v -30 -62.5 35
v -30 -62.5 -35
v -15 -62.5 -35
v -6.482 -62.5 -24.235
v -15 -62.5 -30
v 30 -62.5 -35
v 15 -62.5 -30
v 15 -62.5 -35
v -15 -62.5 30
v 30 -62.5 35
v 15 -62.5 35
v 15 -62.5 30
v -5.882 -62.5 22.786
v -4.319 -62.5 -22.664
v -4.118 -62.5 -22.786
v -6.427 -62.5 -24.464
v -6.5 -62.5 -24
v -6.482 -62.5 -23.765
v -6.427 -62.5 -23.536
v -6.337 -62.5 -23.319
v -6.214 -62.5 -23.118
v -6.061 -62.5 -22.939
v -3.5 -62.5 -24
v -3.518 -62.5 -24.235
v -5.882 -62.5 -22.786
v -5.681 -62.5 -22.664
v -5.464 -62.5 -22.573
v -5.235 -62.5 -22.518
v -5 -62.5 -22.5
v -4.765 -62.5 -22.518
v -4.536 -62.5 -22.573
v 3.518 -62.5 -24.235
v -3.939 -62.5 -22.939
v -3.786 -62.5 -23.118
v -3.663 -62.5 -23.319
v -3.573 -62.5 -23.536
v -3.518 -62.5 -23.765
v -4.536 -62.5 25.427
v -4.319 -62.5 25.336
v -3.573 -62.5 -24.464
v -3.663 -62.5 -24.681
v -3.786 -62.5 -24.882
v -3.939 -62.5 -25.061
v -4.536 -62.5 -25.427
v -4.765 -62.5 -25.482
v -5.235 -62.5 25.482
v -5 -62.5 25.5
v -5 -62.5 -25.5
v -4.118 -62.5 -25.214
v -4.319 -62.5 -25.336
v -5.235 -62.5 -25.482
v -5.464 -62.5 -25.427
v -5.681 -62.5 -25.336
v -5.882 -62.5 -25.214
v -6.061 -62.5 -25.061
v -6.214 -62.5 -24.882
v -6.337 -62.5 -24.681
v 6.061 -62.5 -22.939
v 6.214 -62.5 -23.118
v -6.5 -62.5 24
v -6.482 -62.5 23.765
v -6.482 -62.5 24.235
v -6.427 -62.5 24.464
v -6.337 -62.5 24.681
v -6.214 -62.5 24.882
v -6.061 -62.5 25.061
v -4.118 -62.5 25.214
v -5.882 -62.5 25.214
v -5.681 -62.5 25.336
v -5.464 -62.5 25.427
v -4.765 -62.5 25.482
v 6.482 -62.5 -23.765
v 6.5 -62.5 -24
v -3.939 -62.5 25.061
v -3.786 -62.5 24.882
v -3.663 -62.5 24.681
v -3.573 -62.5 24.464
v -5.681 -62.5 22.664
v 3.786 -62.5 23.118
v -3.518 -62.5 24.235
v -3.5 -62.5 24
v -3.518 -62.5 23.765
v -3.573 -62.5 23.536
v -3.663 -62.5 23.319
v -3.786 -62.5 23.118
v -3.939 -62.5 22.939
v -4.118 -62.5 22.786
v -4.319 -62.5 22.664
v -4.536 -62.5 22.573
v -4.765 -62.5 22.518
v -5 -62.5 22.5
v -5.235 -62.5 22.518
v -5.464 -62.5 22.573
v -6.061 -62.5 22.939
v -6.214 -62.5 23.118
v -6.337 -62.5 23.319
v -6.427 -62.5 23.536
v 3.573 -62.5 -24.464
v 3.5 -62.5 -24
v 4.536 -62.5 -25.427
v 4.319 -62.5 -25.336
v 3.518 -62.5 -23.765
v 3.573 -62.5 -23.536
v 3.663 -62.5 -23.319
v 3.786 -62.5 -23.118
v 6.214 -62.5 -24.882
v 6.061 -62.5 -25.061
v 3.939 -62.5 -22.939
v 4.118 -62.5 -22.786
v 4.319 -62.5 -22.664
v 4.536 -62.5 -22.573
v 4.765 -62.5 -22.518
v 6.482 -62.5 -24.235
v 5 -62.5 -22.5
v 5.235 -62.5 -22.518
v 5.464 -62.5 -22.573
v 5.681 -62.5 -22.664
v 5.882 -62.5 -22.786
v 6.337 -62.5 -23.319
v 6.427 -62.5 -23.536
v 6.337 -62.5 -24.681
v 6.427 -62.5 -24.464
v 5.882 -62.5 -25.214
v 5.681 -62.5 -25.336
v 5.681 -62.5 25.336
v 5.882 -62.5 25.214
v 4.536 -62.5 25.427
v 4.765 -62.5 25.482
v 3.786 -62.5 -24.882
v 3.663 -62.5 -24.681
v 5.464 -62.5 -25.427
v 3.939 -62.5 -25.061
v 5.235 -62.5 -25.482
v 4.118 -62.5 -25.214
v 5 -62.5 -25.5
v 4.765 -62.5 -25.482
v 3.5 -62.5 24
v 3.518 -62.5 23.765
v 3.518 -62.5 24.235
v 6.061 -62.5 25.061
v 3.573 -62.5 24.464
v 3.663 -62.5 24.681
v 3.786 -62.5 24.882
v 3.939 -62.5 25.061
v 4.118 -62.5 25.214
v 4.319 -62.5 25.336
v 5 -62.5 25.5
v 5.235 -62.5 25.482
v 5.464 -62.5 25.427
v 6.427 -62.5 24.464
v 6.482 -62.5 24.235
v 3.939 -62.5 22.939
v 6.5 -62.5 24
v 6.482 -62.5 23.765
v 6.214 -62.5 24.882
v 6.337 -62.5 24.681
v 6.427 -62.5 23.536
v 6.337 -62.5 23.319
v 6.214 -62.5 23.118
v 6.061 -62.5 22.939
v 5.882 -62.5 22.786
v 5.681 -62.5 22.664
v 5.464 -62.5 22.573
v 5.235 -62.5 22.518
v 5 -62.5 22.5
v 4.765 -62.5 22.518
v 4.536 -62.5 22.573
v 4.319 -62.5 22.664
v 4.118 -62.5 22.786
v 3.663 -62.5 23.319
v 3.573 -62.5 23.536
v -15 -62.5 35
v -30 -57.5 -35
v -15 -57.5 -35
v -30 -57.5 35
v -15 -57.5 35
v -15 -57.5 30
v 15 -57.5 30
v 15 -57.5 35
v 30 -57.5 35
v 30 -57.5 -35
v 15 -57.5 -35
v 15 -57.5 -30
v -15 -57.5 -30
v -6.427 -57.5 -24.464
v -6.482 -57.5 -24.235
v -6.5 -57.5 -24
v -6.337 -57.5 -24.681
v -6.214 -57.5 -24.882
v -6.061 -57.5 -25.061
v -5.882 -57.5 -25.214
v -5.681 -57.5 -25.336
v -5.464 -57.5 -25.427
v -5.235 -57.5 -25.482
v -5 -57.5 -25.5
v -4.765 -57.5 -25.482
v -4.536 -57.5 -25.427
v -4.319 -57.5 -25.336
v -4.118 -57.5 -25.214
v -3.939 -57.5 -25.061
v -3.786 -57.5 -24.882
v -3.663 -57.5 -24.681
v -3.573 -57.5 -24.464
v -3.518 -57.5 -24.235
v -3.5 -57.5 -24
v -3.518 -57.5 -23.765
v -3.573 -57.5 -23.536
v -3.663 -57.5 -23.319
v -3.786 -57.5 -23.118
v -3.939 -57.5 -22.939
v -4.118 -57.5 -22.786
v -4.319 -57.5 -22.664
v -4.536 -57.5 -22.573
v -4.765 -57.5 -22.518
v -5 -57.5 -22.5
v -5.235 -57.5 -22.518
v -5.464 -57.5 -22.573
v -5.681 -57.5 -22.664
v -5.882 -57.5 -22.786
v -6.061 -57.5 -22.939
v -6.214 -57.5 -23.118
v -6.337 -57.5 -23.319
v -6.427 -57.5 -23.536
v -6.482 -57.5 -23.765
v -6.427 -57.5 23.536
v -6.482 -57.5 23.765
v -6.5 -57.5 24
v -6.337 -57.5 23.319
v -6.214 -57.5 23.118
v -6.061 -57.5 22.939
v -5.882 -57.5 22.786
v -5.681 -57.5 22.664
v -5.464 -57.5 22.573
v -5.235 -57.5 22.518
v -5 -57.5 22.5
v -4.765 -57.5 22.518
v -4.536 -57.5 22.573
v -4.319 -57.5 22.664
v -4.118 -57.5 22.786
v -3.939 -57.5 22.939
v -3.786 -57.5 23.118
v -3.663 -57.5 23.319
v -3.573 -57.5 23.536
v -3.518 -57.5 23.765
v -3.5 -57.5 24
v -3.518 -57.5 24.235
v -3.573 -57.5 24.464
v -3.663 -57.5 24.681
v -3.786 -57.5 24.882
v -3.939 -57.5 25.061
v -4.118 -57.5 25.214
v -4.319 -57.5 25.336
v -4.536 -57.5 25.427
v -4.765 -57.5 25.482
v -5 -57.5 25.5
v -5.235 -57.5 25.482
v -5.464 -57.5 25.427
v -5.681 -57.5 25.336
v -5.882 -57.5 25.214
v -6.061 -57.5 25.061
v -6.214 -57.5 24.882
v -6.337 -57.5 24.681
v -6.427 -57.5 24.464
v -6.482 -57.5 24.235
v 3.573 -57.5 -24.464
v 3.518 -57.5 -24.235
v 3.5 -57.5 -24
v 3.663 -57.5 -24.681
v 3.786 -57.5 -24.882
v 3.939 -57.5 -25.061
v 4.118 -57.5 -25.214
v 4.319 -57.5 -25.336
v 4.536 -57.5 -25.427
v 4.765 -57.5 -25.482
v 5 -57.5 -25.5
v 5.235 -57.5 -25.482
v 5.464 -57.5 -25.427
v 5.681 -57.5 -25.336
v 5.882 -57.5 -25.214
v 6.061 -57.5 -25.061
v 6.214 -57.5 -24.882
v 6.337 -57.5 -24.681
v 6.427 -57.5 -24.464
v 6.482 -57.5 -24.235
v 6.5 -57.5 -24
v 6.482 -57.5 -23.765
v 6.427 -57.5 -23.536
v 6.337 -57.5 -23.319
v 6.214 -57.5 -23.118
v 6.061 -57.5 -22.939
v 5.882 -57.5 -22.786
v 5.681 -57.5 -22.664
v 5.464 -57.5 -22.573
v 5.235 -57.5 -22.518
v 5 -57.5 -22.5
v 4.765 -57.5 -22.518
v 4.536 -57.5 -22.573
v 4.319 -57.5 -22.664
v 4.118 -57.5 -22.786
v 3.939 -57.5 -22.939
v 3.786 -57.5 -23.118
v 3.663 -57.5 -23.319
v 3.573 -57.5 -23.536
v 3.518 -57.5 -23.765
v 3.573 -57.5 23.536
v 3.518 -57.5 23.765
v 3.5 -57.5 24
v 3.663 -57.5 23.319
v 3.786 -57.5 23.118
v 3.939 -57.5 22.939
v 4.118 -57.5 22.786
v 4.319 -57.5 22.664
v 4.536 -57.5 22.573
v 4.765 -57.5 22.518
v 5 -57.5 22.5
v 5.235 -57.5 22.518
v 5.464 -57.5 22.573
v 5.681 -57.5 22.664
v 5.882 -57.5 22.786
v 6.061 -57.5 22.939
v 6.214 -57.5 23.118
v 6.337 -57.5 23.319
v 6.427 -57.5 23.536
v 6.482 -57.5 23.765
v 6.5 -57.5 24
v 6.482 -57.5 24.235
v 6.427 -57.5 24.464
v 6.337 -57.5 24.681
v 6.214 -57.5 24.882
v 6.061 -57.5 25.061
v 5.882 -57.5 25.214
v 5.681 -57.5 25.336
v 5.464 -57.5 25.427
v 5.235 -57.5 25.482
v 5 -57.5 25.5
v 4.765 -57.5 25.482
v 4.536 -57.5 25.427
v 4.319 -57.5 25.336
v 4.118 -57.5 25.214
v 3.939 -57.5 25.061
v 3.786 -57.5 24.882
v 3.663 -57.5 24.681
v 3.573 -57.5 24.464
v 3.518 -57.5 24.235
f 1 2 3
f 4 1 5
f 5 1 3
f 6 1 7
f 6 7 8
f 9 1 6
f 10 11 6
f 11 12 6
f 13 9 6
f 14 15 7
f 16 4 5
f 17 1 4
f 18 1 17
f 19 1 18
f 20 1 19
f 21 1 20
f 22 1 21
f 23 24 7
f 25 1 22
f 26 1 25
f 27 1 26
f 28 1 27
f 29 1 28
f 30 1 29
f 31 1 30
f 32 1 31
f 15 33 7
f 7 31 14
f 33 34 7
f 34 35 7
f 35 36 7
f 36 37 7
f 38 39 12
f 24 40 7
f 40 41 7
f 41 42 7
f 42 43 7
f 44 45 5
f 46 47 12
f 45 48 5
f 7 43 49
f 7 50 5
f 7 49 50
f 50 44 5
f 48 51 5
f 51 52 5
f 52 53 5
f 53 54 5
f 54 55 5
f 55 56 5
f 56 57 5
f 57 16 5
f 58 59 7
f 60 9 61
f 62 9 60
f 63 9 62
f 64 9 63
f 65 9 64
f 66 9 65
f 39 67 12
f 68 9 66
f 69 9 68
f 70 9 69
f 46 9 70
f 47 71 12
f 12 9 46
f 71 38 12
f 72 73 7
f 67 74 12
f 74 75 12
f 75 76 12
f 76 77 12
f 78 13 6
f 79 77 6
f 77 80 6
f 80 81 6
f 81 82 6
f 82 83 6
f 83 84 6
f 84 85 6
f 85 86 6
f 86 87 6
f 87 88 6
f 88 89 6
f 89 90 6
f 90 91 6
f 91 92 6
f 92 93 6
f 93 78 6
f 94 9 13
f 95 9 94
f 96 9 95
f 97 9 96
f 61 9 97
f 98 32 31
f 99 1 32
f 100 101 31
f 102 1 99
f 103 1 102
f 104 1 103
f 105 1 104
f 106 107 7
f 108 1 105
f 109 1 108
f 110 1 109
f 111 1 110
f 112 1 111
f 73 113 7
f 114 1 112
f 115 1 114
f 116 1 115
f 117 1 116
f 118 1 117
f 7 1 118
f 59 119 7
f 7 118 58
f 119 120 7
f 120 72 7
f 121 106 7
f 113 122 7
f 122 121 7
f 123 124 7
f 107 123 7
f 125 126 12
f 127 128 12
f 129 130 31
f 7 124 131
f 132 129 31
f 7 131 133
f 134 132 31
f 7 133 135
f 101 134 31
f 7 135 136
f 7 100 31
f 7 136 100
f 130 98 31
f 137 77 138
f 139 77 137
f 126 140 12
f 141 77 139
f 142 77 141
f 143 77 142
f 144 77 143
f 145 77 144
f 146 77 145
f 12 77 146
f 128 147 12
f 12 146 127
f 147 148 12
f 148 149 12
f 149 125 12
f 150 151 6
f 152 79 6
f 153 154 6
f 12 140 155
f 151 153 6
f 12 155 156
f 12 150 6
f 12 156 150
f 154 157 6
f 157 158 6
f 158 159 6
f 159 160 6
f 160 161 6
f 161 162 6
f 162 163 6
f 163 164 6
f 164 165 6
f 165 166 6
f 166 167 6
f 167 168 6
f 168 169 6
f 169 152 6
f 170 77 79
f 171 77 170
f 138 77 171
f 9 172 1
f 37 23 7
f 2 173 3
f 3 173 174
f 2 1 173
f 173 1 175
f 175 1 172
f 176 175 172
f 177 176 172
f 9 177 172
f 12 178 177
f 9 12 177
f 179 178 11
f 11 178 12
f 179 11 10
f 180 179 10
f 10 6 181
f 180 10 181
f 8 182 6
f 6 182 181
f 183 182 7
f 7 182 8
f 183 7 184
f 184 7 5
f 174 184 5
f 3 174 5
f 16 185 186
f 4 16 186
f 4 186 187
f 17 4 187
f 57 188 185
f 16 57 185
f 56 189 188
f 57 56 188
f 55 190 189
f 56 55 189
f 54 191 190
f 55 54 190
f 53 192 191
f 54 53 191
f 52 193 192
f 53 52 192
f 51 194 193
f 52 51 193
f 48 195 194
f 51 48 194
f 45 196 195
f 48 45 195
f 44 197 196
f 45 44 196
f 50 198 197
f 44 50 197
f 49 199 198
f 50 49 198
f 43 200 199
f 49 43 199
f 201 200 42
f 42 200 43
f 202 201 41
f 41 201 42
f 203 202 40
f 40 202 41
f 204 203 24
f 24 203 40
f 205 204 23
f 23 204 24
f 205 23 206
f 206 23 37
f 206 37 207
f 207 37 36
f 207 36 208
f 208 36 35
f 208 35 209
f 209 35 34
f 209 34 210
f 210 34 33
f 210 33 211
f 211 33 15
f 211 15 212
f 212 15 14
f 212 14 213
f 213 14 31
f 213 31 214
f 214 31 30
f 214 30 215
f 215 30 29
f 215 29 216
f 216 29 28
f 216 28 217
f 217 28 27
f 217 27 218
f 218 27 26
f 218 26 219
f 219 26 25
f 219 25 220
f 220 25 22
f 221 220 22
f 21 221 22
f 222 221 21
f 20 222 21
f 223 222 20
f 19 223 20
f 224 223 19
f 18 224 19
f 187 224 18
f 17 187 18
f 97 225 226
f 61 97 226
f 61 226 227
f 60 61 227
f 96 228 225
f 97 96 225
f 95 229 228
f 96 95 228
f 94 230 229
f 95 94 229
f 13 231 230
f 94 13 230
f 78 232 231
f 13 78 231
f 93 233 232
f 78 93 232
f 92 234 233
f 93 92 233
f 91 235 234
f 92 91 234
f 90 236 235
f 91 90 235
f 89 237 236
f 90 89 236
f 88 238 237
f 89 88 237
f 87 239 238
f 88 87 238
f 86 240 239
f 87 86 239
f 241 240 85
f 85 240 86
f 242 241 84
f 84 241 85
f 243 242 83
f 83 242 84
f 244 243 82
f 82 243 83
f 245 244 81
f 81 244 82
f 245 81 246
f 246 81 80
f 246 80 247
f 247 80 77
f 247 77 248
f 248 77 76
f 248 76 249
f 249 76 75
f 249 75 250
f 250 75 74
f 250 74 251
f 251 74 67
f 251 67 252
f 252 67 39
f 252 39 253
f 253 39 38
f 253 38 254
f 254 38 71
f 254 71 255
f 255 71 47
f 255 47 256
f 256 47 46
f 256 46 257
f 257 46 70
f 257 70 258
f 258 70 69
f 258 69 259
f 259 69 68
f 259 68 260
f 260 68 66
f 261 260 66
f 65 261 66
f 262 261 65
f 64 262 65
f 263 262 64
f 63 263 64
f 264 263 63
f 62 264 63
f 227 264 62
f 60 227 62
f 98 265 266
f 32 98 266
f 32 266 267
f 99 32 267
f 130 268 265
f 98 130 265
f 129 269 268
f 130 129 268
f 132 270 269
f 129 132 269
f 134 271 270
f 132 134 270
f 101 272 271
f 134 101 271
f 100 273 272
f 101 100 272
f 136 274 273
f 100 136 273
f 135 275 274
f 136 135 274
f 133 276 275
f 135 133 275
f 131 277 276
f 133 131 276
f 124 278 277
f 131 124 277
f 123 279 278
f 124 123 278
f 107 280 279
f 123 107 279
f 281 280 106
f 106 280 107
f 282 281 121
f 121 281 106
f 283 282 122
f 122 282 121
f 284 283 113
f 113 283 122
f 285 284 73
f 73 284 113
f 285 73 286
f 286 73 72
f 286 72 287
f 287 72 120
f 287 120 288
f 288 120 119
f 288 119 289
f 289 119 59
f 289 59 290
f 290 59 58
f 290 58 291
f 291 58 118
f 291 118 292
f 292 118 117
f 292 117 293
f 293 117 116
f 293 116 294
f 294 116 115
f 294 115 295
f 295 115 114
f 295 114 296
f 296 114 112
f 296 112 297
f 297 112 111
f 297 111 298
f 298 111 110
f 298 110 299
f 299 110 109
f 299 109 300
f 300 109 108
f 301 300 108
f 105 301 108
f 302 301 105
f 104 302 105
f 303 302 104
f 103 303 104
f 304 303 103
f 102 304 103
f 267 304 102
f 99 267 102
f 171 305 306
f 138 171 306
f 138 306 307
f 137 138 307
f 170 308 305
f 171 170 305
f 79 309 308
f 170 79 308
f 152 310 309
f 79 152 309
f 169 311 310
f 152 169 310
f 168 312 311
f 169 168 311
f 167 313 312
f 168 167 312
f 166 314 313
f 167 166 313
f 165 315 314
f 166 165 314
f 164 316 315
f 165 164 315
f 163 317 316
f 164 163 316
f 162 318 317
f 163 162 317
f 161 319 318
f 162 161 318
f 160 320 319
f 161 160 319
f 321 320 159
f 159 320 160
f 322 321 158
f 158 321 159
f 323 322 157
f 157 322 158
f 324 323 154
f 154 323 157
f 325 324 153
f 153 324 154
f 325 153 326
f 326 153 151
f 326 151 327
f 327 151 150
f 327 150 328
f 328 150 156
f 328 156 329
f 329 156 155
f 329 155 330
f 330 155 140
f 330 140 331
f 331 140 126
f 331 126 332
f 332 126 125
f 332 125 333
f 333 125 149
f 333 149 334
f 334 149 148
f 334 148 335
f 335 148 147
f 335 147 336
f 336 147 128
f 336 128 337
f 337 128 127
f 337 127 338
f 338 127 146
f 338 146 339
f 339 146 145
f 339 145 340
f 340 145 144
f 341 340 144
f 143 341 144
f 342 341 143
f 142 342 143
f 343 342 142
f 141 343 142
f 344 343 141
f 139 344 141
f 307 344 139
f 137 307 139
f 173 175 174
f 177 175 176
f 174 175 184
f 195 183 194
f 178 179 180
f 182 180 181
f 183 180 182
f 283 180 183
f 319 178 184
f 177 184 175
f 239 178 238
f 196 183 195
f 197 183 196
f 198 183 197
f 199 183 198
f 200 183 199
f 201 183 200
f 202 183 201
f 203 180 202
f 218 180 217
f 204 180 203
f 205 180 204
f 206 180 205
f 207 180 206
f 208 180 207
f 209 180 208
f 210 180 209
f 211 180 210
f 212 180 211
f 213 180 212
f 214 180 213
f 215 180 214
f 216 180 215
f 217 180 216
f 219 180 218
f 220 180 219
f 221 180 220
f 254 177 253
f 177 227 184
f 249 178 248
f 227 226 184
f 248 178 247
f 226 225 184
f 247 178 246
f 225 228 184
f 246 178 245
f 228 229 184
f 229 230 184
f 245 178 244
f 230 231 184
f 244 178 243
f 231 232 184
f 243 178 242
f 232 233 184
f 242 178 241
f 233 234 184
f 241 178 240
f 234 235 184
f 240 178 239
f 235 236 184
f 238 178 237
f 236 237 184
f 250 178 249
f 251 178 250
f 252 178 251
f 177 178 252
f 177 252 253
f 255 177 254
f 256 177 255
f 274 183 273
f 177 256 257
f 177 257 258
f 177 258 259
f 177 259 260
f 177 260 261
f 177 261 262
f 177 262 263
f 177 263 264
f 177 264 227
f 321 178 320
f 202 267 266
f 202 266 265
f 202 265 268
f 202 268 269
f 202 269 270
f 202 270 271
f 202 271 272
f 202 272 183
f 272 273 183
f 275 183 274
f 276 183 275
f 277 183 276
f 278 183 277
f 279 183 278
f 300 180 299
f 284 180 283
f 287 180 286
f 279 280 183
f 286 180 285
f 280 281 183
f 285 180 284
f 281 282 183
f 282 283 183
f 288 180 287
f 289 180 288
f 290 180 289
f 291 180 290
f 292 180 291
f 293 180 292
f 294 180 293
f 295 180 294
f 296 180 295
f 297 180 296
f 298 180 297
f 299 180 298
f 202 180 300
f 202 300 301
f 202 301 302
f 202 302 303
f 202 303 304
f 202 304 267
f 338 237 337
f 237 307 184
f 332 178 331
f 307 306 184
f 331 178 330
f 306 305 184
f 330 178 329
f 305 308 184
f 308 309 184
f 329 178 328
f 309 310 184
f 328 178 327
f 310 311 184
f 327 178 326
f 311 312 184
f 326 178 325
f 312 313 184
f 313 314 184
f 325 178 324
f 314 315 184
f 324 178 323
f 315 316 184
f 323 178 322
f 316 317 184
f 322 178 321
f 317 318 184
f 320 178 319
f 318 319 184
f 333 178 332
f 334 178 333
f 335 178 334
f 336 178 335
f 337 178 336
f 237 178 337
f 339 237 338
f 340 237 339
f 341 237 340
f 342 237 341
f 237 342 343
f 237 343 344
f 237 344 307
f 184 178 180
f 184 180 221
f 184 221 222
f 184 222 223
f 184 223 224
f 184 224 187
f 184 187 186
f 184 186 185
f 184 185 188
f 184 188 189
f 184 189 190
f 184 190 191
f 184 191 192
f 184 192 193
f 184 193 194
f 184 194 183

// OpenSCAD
//Soporte para los motores

difference(){
union(){
translate([0,-60,0])
rotate([0,0,90])
cube([5,60,70], center=true);
}

//Enlace a tapa superior e inferior
translate([0,-60,32.5])
rotate([0,0,90])
cube([5,30,5], center=true);

translate([0,-60,-32.5])
rotate([0,0,90])
cube([5,30,5], center=true);

//Agujeros

translate([0,-30,0])
rotate([0,0,90])
union(){
translate([0,5,24])
rotate([0,90,0])
cylinder(r=3/2, h=100, $fn=40, center=true);
translate([0,-5,24])
rotate([0,90,0])
cylinder(r=3/2, h=100, $fn=40, center=true);


translate([0,5,-24])
rotate([0,90,0])
cylinder(r=3/2, h=100, $fn=40, center=true);
translate([0,-5,-24])
rotate([0,90,0])
cylinder(r=3/2, h=100, $fn=40, center=true);

}
}
